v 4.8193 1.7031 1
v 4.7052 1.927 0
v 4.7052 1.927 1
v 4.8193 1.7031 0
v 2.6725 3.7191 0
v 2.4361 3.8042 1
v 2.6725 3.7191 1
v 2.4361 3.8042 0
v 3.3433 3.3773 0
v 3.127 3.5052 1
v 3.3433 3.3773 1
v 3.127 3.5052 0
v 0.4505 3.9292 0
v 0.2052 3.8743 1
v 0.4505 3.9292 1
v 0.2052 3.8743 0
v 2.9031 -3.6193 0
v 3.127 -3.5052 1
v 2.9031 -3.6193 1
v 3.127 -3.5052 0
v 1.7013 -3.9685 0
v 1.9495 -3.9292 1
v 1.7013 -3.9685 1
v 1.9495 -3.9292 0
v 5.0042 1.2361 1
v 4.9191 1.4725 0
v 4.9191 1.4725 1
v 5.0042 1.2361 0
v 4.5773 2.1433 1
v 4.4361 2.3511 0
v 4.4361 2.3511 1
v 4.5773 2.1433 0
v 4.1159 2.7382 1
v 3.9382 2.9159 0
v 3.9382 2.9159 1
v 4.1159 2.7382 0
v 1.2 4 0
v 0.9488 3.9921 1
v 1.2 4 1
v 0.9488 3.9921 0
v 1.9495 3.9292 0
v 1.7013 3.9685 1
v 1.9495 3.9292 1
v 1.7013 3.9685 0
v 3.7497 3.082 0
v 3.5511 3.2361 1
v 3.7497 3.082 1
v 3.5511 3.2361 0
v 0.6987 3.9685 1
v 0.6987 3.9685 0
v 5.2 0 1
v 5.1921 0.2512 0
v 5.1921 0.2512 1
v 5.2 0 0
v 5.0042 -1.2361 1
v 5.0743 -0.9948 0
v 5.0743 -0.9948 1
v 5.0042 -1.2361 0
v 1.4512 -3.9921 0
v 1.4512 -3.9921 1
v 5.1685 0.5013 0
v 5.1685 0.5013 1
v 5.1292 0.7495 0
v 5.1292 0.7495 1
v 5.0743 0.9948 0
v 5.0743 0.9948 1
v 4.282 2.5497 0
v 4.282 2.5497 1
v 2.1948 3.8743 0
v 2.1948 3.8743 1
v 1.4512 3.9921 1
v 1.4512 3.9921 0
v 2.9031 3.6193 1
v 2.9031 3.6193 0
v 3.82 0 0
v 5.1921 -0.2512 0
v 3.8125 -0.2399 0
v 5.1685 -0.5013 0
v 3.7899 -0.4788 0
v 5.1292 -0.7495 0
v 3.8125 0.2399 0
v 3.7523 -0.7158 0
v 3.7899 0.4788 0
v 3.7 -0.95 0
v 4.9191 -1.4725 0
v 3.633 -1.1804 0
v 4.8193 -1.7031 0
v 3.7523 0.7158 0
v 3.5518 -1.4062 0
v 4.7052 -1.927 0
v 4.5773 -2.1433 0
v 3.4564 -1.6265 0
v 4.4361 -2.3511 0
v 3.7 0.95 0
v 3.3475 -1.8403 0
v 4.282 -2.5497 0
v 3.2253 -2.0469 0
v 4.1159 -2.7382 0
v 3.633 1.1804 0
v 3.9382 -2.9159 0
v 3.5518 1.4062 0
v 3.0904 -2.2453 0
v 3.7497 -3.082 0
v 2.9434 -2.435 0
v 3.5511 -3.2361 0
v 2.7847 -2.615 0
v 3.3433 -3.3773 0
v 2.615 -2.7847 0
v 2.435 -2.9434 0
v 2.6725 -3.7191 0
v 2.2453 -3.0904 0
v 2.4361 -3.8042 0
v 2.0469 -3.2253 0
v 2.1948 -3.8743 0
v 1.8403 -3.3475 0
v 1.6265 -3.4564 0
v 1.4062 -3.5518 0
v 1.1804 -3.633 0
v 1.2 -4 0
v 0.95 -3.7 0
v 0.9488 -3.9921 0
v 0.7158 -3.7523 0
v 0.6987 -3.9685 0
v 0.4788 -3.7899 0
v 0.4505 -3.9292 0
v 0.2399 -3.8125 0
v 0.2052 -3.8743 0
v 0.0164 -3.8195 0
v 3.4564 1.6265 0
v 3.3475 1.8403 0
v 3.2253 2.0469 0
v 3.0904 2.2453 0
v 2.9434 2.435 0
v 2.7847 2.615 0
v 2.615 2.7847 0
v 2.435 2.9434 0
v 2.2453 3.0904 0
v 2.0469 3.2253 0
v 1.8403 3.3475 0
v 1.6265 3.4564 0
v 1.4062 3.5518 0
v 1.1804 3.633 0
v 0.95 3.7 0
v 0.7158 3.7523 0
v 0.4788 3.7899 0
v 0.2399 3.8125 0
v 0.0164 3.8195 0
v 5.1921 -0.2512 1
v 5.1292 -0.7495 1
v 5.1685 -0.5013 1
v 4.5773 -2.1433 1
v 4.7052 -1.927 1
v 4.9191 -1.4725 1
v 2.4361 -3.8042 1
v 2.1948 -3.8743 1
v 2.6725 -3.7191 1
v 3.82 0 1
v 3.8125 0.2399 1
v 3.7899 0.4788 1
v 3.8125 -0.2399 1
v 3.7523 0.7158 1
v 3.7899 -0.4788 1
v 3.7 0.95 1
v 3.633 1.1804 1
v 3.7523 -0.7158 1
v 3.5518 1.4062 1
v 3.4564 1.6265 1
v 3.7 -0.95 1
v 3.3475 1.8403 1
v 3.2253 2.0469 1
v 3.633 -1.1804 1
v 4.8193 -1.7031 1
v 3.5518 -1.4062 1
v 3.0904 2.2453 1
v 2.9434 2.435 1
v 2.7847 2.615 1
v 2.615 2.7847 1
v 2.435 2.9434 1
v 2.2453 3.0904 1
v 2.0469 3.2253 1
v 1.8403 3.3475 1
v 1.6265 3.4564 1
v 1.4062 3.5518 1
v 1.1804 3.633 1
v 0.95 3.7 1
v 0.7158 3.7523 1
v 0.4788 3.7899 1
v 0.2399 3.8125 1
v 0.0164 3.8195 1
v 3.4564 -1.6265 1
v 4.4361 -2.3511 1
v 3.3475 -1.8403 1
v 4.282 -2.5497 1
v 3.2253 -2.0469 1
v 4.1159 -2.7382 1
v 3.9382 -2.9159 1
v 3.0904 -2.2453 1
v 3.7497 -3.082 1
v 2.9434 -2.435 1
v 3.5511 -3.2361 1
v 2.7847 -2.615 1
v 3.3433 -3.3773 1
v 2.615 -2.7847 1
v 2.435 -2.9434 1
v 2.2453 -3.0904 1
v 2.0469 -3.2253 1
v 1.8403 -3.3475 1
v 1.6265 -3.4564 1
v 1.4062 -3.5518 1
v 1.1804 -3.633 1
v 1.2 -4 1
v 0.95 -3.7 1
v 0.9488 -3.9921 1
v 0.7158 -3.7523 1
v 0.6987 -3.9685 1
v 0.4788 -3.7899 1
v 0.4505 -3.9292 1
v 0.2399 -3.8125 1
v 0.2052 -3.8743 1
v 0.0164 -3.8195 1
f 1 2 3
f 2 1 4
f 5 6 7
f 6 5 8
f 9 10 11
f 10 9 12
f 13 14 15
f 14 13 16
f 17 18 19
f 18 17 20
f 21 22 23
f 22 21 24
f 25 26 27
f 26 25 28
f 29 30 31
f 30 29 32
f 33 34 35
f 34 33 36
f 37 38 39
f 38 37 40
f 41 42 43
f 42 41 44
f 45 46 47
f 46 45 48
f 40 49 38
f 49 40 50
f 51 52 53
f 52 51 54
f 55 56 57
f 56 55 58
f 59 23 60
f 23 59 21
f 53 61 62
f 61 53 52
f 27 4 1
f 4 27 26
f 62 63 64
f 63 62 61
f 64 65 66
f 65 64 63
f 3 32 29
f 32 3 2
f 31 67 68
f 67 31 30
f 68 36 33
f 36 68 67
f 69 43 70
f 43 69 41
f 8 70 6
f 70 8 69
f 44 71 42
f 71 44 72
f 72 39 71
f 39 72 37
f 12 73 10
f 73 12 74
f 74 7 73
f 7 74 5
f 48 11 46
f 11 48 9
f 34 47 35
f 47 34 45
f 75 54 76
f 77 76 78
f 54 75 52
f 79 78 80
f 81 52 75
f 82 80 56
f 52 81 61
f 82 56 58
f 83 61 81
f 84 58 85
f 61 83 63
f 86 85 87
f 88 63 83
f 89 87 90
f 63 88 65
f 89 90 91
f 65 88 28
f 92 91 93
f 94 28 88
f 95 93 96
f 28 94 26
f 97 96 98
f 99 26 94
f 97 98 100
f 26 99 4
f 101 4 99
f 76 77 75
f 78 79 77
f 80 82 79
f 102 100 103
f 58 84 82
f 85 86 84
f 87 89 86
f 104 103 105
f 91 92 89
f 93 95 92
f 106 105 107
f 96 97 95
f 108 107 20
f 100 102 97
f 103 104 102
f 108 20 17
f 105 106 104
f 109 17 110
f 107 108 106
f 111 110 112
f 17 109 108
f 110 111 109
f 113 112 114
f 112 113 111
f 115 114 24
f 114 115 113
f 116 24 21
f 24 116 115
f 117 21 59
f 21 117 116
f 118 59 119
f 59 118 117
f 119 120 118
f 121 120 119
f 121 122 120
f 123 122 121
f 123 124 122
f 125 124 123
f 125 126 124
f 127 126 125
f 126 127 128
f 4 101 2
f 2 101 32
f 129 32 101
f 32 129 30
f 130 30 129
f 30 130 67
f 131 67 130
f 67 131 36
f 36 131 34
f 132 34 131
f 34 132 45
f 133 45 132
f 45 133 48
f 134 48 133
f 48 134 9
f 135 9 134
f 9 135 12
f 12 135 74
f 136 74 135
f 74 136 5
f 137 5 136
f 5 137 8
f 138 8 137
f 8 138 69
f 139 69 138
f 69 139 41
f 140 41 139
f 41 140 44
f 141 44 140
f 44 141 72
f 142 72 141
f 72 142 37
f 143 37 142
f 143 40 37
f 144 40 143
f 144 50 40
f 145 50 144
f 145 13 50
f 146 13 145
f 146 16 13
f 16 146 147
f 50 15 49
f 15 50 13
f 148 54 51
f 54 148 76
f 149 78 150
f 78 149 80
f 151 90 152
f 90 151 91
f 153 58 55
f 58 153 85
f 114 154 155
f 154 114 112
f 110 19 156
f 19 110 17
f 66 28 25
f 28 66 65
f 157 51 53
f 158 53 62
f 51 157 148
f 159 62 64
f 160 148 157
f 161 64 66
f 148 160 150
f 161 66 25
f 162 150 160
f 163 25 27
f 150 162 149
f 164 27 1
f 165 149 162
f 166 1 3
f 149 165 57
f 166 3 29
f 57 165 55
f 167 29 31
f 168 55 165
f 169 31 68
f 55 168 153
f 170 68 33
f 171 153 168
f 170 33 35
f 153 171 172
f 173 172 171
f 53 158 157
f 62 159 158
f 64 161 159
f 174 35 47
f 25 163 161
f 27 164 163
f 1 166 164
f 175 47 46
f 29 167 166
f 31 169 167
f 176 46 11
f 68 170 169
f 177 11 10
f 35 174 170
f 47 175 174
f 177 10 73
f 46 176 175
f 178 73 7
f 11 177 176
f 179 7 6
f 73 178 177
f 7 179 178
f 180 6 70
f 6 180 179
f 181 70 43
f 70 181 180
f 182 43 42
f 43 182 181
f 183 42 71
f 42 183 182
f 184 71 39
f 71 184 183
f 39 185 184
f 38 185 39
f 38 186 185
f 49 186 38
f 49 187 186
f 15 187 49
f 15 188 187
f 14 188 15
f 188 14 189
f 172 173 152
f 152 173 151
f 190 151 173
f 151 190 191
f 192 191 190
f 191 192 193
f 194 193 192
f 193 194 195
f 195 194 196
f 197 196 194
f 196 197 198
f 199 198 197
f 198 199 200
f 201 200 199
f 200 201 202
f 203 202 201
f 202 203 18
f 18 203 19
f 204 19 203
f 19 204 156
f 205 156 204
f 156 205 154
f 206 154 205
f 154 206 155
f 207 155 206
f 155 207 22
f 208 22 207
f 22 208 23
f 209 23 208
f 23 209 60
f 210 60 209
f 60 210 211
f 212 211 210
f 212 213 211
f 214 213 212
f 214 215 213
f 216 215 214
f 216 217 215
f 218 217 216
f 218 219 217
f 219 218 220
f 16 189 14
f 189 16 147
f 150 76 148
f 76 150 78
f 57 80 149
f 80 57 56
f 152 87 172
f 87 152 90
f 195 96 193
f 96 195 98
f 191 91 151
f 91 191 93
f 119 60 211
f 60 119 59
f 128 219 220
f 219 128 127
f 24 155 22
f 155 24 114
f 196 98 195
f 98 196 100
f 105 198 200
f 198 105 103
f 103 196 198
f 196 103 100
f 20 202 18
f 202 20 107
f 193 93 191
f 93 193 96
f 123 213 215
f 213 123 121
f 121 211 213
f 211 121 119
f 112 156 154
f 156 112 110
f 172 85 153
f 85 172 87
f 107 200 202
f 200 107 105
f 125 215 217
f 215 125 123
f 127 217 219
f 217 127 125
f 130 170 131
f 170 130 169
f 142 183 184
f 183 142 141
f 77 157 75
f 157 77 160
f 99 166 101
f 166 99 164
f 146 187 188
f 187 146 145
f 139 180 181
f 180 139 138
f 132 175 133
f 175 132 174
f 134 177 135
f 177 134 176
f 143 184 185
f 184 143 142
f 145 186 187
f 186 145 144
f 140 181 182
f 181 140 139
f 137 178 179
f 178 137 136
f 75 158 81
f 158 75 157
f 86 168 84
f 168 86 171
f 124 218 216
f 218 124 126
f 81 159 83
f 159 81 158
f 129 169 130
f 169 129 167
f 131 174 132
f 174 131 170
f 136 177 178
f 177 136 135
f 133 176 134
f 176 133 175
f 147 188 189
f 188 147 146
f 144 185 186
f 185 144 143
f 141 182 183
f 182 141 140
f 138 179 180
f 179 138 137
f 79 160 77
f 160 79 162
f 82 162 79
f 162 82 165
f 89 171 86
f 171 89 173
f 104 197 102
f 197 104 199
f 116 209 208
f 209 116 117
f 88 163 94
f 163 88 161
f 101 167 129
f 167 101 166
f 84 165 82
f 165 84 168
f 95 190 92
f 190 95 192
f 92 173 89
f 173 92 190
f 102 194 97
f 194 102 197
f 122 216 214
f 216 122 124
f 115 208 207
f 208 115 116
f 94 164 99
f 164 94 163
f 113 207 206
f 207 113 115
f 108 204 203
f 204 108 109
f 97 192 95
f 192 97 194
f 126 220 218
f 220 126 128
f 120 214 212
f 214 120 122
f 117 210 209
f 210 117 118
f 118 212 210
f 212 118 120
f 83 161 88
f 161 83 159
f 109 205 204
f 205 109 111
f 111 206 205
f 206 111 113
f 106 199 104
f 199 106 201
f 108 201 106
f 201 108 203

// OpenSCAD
difference(){

translate([1.2,0,0])
{
cylinder(r=4,h=1,$fn=100);
}
translate([0,0,0])
{
cylinder(r=3.82,h=1,$fn=100);
}
}
